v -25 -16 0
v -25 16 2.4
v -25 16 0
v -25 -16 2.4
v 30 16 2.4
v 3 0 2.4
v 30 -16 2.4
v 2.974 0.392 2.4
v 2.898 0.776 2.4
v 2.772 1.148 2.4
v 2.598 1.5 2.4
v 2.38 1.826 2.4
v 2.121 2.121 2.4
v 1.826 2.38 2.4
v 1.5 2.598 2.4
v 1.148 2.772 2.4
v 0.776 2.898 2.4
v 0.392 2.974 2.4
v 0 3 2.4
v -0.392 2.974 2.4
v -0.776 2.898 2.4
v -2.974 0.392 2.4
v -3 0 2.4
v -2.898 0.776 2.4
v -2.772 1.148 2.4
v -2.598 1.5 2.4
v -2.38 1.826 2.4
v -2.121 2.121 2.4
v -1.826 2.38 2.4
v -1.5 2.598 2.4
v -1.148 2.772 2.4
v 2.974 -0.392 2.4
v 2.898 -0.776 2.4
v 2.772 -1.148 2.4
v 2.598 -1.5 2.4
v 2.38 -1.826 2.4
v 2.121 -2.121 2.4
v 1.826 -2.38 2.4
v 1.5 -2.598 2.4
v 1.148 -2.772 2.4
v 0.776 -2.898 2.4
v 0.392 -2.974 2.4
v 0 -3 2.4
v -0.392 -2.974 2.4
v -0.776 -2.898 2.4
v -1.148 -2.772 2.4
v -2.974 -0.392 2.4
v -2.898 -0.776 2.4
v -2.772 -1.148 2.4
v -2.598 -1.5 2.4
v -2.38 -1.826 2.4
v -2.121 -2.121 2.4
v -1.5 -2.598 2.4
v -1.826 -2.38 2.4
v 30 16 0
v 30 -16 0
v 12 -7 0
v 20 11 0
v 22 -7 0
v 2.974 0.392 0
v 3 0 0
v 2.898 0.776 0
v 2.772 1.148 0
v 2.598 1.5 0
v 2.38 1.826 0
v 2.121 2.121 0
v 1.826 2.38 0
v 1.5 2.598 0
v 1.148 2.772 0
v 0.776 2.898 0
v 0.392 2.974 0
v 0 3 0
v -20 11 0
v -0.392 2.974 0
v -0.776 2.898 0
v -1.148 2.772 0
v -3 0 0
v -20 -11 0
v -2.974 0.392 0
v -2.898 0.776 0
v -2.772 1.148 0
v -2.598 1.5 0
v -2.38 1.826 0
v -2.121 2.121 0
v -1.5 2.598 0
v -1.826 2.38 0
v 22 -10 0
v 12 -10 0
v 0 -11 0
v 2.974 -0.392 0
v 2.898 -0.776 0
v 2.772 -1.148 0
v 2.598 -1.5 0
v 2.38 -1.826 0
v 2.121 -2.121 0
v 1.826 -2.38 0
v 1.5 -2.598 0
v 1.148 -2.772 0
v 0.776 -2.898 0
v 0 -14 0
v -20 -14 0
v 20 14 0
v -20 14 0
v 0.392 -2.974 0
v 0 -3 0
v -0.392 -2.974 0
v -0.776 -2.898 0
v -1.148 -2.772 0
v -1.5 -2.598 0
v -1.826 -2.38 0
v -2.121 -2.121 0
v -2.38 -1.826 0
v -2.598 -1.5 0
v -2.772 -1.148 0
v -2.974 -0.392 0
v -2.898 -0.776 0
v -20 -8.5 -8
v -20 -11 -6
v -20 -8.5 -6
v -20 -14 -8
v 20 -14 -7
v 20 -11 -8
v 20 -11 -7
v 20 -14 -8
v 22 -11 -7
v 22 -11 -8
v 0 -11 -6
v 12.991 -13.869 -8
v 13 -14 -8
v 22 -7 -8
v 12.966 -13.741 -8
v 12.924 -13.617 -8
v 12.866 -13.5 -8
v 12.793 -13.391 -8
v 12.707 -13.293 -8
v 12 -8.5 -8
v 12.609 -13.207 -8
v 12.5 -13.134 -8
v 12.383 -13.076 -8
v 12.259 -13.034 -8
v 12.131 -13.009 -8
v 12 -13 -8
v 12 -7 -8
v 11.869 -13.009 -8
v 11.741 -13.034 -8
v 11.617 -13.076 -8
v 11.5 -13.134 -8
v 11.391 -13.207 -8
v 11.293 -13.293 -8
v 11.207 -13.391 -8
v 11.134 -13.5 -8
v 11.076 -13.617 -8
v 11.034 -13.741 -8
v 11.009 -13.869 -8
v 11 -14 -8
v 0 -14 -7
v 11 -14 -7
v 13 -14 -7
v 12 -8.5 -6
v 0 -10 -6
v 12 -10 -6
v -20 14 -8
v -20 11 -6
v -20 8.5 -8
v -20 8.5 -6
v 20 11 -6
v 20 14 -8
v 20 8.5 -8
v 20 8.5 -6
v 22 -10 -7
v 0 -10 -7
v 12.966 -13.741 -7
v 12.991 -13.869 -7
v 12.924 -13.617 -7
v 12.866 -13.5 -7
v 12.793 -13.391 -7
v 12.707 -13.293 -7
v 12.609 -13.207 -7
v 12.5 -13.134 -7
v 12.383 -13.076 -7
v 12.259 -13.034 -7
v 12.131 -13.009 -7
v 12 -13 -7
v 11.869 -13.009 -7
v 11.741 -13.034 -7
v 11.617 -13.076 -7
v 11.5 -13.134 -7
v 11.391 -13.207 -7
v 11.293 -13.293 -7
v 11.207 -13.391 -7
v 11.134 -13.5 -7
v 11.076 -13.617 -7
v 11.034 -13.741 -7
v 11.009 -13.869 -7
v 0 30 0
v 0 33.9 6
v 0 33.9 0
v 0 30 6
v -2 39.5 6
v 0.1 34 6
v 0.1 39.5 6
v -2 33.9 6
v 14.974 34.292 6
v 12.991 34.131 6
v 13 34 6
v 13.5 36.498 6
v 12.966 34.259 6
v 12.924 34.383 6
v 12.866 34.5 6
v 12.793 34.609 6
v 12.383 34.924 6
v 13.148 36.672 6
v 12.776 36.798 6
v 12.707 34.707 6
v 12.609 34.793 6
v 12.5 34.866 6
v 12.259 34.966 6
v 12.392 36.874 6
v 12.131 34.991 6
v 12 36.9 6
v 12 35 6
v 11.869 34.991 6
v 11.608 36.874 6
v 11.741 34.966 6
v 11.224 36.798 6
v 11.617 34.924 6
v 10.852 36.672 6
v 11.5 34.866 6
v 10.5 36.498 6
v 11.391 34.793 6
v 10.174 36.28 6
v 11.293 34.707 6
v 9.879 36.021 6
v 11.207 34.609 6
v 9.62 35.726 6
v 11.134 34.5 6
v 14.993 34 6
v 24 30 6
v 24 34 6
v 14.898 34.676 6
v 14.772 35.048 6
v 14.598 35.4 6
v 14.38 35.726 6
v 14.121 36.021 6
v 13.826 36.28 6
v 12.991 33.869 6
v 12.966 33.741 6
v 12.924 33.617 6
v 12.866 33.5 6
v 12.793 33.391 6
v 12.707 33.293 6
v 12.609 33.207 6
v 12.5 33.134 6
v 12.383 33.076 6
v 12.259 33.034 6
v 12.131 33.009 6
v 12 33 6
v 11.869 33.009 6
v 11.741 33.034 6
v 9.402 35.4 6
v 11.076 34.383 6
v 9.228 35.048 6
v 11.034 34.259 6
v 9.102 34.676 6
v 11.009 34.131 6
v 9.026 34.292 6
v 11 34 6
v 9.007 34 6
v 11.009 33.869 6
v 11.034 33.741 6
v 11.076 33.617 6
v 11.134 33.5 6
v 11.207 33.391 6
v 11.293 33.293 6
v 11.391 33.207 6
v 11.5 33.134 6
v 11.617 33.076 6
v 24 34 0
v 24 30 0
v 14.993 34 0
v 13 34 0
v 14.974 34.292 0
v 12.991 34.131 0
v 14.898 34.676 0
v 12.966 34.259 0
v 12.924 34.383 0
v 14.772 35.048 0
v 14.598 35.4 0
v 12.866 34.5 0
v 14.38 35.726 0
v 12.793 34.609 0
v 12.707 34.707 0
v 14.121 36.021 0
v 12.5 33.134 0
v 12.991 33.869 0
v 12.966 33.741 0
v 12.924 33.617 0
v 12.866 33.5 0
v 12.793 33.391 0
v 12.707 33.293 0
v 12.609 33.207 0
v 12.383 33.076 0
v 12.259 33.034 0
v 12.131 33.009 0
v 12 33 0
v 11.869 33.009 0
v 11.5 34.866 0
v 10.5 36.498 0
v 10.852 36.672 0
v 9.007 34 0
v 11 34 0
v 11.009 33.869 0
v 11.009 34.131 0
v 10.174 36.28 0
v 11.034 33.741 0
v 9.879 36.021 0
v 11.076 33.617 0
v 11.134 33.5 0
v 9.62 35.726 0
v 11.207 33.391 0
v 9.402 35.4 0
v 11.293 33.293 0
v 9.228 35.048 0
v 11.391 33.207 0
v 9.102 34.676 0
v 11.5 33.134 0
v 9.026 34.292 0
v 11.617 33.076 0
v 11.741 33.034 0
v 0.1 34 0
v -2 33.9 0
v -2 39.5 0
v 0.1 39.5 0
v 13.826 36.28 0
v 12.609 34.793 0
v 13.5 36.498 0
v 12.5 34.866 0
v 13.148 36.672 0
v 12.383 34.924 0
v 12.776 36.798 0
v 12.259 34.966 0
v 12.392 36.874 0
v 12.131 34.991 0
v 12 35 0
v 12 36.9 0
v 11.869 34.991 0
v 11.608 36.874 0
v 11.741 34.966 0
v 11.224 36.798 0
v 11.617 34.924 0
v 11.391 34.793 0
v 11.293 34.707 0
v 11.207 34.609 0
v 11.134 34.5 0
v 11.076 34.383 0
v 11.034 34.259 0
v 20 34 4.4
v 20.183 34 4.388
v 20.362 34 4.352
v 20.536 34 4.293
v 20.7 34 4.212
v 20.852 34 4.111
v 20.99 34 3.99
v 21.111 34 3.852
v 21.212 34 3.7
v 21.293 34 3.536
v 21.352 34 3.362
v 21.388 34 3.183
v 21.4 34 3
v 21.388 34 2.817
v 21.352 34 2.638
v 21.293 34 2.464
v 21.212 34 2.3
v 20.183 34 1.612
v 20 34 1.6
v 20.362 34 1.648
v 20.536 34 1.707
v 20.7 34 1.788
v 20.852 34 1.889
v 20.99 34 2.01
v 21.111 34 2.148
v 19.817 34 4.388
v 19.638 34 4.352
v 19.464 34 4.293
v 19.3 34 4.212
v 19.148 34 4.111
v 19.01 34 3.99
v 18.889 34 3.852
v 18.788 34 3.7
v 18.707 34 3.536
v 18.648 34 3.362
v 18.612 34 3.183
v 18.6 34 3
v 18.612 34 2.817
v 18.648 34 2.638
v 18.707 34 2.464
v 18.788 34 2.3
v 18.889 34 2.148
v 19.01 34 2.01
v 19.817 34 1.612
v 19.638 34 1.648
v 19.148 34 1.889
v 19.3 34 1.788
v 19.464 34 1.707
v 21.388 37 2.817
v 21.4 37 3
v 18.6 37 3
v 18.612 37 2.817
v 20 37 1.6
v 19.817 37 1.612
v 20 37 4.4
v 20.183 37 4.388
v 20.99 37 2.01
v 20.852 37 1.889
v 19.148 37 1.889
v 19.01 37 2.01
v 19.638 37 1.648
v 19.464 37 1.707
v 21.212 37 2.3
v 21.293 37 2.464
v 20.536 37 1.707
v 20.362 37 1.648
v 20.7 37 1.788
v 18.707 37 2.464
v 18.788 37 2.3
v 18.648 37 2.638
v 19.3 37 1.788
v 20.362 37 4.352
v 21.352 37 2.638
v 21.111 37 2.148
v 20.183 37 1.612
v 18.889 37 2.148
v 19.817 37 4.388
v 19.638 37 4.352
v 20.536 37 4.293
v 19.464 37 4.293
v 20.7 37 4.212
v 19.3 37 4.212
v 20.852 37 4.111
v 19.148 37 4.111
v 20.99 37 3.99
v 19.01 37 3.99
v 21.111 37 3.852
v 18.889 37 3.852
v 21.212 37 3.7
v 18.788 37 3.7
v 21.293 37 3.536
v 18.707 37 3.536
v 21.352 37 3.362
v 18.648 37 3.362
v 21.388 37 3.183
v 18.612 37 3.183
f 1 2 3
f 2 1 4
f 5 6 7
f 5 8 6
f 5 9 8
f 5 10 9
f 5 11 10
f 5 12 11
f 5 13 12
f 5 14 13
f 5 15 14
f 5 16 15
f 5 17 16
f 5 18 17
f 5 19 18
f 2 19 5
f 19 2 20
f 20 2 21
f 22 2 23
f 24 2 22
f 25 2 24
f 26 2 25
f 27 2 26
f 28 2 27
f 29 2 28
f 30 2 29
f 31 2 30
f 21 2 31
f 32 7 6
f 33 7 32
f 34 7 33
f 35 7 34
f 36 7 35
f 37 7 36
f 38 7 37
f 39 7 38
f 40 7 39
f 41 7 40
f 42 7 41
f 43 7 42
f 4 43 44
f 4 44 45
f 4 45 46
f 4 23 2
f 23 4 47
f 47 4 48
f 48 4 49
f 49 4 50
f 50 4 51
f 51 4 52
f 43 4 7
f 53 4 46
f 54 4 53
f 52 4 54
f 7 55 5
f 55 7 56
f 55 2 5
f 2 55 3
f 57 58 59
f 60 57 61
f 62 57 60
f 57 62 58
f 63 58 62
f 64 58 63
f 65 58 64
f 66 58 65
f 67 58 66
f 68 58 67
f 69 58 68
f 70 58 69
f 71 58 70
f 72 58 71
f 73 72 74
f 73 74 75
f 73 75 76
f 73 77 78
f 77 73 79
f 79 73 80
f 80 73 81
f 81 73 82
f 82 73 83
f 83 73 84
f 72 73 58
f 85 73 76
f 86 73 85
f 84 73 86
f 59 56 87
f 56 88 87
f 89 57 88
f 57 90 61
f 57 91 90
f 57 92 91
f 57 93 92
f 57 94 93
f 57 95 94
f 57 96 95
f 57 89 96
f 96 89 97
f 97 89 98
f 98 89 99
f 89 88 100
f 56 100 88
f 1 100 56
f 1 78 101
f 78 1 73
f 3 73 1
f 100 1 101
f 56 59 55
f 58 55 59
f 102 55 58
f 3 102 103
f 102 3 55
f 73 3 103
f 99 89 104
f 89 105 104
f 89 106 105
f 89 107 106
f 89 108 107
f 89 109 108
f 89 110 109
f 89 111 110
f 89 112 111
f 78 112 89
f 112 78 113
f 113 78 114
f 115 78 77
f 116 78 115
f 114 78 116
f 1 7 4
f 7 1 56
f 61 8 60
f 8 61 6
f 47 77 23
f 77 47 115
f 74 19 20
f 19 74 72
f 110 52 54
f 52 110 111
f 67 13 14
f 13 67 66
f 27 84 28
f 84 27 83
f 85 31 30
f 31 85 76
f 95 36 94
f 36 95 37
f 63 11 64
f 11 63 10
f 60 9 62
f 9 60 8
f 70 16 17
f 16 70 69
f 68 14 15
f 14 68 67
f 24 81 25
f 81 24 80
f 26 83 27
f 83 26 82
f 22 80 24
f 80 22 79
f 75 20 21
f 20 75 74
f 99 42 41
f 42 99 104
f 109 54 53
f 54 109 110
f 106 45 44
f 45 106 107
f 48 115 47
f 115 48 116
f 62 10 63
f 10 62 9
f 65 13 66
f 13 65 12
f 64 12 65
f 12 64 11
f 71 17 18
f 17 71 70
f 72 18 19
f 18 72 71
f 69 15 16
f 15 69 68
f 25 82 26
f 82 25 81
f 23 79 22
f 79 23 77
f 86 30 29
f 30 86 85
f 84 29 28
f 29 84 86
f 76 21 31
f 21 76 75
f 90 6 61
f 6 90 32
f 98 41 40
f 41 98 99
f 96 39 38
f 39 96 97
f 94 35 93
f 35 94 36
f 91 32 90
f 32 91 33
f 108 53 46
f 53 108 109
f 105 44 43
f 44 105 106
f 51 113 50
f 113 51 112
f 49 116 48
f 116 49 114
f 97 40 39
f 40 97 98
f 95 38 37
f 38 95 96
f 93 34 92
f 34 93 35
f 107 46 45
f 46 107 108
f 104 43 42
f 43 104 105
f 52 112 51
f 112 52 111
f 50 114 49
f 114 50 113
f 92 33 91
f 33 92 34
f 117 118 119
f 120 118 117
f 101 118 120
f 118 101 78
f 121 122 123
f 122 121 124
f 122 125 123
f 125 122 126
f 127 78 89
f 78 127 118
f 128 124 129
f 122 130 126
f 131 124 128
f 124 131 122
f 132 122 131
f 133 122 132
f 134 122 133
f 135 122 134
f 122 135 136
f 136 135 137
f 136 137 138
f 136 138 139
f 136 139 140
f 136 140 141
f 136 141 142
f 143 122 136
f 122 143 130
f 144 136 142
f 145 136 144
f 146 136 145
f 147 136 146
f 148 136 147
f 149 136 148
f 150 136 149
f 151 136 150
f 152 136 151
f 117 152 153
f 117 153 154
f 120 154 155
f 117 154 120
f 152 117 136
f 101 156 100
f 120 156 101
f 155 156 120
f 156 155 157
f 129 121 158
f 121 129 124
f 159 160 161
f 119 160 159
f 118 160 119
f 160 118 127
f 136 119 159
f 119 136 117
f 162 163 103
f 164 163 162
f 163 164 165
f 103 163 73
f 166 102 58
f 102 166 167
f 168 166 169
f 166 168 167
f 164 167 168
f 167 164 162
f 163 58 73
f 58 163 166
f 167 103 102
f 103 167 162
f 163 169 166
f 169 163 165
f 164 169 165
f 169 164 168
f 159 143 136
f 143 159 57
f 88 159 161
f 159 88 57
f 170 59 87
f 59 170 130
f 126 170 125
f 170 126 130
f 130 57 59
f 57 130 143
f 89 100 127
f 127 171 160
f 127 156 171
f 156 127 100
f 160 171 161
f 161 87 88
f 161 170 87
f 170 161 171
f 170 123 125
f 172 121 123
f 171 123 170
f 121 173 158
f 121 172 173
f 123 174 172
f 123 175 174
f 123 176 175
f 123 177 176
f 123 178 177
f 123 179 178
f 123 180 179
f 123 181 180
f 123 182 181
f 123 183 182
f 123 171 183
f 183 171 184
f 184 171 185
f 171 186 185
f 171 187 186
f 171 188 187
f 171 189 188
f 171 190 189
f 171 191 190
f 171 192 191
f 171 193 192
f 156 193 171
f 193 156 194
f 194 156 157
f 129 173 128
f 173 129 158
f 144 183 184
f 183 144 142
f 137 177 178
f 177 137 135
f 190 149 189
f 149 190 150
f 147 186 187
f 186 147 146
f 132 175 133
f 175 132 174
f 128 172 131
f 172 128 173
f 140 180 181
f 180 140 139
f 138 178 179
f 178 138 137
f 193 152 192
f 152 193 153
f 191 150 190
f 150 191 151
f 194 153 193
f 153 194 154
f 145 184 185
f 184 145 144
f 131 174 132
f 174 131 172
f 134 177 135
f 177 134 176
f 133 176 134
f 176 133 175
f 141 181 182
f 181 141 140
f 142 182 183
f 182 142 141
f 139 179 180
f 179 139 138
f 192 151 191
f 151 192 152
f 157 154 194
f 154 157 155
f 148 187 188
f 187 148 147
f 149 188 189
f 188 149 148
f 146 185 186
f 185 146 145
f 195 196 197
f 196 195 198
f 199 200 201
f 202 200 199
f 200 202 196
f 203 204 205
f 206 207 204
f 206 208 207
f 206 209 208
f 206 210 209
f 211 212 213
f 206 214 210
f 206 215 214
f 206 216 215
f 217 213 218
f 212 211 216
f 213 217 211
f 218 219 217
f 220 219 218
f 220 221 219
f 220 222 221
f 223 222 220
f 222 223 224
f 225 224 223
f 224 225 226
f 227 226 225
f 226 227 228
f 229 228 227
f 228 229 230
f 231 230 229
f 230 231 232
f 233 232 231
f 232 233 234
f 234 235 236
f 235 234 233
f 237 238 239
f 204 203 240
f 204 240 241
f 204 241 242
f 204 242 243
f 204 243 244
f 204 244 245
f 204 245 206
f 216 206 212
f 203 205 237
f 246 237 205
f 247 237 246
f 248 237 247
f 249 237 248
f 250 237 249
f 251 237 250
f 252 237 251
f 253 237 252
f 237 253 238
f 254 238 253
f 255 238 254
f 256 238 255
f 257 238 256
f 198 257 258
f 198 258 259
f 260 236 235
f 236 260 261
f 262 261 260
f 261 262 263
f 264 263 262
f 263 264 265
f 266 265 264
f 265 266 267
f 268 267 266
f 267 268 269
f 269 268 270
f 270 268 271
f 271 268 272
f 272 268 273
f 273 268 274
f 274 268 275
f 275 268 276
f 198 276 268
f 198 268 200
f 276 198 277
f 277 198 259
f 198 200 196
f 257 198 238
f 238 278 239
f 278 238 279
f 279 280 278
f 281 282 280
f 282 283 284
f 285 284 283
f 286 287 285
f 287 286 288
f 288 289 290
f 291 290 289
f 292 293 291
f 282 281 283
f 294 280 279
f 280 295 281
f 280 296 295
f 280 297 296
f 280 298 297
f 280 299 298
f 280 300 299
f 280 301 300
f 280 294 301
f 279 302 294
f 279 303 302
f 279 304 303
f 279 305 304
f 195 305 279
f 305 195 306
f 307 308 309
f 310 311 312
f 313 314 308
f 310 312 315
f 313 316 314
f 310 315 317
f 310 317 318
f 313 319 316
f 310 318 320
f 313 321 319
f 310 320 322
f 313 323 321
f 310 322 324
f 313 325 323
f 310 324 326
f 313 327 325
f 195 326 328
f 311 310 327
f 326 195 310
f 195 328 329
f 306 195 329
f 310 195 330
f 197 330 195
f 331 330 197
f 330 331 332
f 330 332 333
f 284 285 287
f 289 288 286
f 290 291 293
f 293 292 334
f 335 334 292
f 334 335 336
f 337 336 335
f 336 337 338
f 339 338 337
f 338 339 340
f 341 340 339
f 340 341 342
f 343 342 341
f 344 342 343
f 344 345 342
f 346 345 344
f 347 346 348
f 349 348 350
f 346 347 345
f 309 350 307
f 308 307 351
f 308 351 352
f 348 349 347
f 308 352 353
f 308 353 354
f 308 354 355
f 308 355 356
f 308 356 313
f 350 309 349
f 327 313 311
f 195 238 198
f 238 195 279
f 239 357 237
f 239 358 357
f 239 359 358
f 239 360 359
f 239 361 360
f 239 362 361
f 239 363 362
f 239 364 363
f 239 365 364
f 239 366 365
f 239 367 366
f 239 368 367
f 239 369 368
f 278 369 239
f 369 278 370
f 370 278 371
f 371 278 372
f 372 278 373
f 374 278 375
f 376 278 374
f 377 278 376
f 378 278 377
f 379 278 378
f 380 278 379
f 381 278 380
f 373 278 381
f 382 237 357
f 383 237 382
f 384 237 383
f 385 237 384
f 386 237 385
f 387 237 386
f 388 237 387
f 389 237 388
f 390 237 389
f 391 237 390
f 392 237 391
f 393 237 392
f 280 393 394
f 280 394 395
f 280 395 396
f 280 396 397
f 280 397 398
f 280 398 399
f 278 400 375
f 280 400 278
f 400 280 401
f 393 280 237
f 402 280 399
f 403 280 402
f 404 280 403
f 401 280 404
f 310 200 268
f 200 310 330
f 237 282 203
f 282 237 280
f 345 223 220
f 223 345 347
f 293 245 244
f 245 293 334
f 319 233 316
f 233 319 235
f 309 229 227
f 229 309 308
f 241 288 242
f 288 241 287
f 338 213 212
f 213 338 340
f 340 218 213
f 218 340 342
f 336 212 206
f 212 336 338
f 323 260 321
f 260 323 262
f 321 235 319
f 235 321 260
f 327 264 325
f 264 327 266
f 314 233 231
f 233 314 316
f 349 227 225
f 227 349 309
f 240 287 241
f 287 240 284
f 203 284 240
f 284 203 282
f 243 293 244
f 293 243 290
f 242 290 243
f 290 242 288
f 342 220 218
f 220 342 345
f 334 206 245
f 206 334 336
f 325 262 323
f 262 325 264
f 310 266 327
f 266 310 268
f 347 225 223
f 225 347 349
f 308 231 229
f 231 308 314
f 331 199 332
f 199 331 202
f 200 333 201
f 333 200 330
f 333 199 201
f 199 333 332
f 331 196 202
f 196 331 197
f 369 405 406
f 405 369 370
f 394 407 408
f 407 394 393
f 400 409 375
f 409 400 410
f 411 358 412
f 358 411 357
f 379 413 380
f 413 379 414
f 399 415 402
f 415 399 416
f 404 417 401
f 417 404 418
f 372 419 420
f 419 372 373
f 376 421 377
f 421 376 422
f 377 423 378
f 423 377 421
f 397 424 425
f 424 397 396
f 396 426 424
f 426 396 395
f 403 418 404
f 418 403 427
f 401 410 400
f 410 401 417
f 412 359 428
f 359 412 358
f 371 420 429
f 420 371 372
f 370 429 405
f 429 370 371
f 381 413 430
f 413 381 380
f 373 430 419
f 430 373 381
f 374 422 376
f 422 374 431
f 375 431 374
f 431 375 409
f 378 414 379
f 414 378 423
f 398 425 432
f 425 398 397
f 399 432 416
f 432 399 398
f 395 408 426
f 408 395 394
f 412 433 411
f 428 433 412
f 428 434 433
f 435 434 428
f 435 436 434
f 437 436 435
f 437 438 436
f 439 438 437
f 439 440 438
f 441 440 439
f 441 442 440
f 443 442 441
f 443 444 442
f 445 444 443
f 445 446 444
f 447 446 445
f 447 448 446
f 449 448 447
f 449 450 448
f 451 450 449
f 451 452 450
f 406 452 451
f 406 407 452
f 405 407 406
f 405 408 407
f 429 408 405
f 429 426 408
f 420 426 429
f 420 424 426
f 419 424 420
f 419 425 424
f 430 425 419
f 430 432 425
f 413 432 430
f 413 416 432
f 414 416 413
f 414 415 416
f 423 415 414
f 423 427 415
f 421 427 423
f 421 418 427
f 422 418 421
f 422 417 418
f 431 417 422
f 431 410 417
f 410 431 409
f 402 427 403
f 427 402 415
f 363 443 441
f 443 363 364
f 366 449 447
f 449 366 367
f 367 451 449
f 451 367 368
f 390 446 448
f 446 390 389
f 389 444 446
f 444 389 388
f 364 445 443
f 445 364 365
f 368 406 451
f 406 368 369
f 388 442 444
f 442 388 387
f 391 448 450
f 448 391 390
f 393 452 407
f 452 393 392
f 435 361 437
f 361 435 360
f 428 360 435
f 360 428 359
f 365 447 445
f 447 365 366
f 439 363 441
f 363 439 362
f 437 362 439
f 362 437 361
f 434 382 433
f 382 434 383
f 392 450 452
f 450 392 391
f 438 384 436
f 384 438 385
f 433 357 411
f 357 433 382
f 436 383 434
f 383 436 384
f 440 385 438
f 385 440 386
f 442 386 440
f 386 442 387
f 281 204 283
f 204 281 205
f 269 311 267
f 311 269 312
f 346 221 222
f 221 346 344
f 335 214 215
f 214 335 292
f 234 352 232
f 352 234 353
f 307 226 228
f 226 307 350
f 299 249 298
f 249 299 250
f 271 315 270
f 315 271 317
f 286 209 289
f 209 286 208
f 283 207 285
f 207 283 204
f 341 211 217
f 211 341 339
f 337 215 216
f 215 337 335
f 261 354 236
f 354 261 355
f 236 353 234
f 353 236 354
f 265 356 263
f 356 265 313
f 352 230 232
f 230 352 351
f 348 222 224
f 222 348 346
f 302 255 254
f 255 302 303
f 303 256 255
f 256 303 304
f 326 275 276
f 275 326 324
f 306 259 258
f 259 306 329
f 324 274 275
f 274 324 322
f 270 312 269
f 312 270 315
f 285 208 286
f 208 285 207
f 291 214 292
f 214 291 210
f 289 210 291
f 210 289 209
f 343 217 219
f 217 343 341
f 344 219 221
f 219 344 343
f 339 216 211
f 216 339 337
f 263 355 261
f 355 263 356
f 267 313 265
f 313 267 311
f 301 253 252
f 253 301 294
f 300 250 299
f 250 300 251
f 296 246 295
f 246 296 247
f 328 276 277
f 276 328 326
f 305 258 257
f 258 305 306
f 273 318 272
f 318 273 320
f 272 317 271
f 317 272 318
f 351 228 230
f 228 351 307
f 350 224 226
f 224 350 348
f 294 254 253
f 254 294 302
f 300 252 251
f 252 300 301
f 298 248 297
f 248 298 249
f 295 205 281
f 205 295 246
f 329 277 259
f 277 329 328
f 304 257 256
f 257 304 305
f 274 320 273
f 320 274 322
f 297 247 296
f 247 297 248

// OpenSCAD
// =====================================================================
// BEYBLADE X - TEST AGGANCIO BATTLE PASS + CLIP A MOLLA (BILANCIERE Z)
// =====================================================================

$fn = 48;

// --- PARAMETRI DIMENSIONALI SLITTA ---
rail_width           = 22.0;
rail_height          = 8.0;
rail_lip_depth       = 2.5;
clip_thickness       = 3.0;
clip_length          = 40.0;
sensor_sight_dia     = 6.0;

// --- PARAMETRI CLIP MECCANICA (Bilanciere Z) ---
pivot_hole_dia       = 2.0;   // Foro per filamento 1.75mm
lock_w               = 6.0;   // Altezza (Z) della levetta
lock_len             = 24.0;  // Lunghezza totale (X)
lock_depth           = 4.0;   // Profondita (Y)

// Quote di base
body_length          = 130;
body_width           = 32;
clip_x               = (body_length - clip_length) / 2;

module mechanical_lock_clip() {
    difference() {
        union() {
            // Corpo leva
            cube([lock_len, lock_depth, lock_w]);
            
            // Fulcro
            translate([lock_len/2, lock_depth - 0.1, 0])
                cylinder(h=lock_w, d=lock_depth + 2);
                
            // Dente
            translate([-2, lock_depth - 0.1, 0])
                cube([2.1, rail_lip_depth + clip_thickness + 0.1, lock_w]);
                
            // Piolino per molla penna (d=4mm esterno, foro 3mm)
            translate([lock_len - 4, lock_depth - 0.1, lock_w/2])
                rotate([-90, 0, 0])
                    cylinder(h=3.1, d=2.8);
        }
        // Foro perno
        translate([lock_len/2, lock_depth, -1])
            cylinder(h=lock_w + 2, d=pivot_hole_dia);
    }
}

module launcher_mount() {
    clip_y_left = (body_width - rail_width) / 2 - clip_thickness;
    clip_y_right = (body_width + rail_width) / 2;
    
    difference() {
        union() {
            // Binario Sinistro
            translate([clip_x, clip_y_left, -rail_height]) {
                cube([clip_length, clip_thickness, rail_height + 0.1]);
                cube([clip_length, clip_thickness + rail_lip_depth, 2]); 
            }
            // Binario Destro
            translate([clip_x, clip_y_right, -rail_height]) {
                cube([clip_length, clip_thickness, rail_height + 0.1]);
                translate([0, -rail_lip_depth, 0])
                    cube([clip_length, clip_thickness + rail_lip_depth, 2]); 
            }
            // Muro per far poggiare la molla
            translate([clip_x + clip_length - 8, clip_y_left + clip_thickness, -rail_height])
                cube([10, 4, rail_height + 0.1]);
        }
        
        // Fessura laterale per alloggiare la levetta
        translate([clip_x + clip_length - lock_len + 4, clip_y_left - lock_depth - 1, -rail_height + 1])
            cube([lock_len + 4, lock_depth + clip_thickness + 2, lock_w + 1]);
            
        // Foro verticale per il perno (da sotto fino al corpo)
        translate([clip_x + clip_length - lock_len/2 + 4, clip_y_left, -rail_height - 1])
            cylinder(h=rail_height + 5, d=pivot_hole_dia);
    }
}

module test_hook_block() {
    difference() {
        translate([(body_length - clip_length)/2 - 5, 0, 0])
            cube([clip_length + 15, body_width, 2.4]);
        translate([(body_length)/2, body_width/2, -1])
            cylinder(h=5, d=sensor_sight_dia);
    }
    launcher_mount();
}

translate([-(body_length)/2, -(body_width)/2, 0])
    test_hook_block();

translate([0, 30, 0])
    mechanical_lock_clip();
